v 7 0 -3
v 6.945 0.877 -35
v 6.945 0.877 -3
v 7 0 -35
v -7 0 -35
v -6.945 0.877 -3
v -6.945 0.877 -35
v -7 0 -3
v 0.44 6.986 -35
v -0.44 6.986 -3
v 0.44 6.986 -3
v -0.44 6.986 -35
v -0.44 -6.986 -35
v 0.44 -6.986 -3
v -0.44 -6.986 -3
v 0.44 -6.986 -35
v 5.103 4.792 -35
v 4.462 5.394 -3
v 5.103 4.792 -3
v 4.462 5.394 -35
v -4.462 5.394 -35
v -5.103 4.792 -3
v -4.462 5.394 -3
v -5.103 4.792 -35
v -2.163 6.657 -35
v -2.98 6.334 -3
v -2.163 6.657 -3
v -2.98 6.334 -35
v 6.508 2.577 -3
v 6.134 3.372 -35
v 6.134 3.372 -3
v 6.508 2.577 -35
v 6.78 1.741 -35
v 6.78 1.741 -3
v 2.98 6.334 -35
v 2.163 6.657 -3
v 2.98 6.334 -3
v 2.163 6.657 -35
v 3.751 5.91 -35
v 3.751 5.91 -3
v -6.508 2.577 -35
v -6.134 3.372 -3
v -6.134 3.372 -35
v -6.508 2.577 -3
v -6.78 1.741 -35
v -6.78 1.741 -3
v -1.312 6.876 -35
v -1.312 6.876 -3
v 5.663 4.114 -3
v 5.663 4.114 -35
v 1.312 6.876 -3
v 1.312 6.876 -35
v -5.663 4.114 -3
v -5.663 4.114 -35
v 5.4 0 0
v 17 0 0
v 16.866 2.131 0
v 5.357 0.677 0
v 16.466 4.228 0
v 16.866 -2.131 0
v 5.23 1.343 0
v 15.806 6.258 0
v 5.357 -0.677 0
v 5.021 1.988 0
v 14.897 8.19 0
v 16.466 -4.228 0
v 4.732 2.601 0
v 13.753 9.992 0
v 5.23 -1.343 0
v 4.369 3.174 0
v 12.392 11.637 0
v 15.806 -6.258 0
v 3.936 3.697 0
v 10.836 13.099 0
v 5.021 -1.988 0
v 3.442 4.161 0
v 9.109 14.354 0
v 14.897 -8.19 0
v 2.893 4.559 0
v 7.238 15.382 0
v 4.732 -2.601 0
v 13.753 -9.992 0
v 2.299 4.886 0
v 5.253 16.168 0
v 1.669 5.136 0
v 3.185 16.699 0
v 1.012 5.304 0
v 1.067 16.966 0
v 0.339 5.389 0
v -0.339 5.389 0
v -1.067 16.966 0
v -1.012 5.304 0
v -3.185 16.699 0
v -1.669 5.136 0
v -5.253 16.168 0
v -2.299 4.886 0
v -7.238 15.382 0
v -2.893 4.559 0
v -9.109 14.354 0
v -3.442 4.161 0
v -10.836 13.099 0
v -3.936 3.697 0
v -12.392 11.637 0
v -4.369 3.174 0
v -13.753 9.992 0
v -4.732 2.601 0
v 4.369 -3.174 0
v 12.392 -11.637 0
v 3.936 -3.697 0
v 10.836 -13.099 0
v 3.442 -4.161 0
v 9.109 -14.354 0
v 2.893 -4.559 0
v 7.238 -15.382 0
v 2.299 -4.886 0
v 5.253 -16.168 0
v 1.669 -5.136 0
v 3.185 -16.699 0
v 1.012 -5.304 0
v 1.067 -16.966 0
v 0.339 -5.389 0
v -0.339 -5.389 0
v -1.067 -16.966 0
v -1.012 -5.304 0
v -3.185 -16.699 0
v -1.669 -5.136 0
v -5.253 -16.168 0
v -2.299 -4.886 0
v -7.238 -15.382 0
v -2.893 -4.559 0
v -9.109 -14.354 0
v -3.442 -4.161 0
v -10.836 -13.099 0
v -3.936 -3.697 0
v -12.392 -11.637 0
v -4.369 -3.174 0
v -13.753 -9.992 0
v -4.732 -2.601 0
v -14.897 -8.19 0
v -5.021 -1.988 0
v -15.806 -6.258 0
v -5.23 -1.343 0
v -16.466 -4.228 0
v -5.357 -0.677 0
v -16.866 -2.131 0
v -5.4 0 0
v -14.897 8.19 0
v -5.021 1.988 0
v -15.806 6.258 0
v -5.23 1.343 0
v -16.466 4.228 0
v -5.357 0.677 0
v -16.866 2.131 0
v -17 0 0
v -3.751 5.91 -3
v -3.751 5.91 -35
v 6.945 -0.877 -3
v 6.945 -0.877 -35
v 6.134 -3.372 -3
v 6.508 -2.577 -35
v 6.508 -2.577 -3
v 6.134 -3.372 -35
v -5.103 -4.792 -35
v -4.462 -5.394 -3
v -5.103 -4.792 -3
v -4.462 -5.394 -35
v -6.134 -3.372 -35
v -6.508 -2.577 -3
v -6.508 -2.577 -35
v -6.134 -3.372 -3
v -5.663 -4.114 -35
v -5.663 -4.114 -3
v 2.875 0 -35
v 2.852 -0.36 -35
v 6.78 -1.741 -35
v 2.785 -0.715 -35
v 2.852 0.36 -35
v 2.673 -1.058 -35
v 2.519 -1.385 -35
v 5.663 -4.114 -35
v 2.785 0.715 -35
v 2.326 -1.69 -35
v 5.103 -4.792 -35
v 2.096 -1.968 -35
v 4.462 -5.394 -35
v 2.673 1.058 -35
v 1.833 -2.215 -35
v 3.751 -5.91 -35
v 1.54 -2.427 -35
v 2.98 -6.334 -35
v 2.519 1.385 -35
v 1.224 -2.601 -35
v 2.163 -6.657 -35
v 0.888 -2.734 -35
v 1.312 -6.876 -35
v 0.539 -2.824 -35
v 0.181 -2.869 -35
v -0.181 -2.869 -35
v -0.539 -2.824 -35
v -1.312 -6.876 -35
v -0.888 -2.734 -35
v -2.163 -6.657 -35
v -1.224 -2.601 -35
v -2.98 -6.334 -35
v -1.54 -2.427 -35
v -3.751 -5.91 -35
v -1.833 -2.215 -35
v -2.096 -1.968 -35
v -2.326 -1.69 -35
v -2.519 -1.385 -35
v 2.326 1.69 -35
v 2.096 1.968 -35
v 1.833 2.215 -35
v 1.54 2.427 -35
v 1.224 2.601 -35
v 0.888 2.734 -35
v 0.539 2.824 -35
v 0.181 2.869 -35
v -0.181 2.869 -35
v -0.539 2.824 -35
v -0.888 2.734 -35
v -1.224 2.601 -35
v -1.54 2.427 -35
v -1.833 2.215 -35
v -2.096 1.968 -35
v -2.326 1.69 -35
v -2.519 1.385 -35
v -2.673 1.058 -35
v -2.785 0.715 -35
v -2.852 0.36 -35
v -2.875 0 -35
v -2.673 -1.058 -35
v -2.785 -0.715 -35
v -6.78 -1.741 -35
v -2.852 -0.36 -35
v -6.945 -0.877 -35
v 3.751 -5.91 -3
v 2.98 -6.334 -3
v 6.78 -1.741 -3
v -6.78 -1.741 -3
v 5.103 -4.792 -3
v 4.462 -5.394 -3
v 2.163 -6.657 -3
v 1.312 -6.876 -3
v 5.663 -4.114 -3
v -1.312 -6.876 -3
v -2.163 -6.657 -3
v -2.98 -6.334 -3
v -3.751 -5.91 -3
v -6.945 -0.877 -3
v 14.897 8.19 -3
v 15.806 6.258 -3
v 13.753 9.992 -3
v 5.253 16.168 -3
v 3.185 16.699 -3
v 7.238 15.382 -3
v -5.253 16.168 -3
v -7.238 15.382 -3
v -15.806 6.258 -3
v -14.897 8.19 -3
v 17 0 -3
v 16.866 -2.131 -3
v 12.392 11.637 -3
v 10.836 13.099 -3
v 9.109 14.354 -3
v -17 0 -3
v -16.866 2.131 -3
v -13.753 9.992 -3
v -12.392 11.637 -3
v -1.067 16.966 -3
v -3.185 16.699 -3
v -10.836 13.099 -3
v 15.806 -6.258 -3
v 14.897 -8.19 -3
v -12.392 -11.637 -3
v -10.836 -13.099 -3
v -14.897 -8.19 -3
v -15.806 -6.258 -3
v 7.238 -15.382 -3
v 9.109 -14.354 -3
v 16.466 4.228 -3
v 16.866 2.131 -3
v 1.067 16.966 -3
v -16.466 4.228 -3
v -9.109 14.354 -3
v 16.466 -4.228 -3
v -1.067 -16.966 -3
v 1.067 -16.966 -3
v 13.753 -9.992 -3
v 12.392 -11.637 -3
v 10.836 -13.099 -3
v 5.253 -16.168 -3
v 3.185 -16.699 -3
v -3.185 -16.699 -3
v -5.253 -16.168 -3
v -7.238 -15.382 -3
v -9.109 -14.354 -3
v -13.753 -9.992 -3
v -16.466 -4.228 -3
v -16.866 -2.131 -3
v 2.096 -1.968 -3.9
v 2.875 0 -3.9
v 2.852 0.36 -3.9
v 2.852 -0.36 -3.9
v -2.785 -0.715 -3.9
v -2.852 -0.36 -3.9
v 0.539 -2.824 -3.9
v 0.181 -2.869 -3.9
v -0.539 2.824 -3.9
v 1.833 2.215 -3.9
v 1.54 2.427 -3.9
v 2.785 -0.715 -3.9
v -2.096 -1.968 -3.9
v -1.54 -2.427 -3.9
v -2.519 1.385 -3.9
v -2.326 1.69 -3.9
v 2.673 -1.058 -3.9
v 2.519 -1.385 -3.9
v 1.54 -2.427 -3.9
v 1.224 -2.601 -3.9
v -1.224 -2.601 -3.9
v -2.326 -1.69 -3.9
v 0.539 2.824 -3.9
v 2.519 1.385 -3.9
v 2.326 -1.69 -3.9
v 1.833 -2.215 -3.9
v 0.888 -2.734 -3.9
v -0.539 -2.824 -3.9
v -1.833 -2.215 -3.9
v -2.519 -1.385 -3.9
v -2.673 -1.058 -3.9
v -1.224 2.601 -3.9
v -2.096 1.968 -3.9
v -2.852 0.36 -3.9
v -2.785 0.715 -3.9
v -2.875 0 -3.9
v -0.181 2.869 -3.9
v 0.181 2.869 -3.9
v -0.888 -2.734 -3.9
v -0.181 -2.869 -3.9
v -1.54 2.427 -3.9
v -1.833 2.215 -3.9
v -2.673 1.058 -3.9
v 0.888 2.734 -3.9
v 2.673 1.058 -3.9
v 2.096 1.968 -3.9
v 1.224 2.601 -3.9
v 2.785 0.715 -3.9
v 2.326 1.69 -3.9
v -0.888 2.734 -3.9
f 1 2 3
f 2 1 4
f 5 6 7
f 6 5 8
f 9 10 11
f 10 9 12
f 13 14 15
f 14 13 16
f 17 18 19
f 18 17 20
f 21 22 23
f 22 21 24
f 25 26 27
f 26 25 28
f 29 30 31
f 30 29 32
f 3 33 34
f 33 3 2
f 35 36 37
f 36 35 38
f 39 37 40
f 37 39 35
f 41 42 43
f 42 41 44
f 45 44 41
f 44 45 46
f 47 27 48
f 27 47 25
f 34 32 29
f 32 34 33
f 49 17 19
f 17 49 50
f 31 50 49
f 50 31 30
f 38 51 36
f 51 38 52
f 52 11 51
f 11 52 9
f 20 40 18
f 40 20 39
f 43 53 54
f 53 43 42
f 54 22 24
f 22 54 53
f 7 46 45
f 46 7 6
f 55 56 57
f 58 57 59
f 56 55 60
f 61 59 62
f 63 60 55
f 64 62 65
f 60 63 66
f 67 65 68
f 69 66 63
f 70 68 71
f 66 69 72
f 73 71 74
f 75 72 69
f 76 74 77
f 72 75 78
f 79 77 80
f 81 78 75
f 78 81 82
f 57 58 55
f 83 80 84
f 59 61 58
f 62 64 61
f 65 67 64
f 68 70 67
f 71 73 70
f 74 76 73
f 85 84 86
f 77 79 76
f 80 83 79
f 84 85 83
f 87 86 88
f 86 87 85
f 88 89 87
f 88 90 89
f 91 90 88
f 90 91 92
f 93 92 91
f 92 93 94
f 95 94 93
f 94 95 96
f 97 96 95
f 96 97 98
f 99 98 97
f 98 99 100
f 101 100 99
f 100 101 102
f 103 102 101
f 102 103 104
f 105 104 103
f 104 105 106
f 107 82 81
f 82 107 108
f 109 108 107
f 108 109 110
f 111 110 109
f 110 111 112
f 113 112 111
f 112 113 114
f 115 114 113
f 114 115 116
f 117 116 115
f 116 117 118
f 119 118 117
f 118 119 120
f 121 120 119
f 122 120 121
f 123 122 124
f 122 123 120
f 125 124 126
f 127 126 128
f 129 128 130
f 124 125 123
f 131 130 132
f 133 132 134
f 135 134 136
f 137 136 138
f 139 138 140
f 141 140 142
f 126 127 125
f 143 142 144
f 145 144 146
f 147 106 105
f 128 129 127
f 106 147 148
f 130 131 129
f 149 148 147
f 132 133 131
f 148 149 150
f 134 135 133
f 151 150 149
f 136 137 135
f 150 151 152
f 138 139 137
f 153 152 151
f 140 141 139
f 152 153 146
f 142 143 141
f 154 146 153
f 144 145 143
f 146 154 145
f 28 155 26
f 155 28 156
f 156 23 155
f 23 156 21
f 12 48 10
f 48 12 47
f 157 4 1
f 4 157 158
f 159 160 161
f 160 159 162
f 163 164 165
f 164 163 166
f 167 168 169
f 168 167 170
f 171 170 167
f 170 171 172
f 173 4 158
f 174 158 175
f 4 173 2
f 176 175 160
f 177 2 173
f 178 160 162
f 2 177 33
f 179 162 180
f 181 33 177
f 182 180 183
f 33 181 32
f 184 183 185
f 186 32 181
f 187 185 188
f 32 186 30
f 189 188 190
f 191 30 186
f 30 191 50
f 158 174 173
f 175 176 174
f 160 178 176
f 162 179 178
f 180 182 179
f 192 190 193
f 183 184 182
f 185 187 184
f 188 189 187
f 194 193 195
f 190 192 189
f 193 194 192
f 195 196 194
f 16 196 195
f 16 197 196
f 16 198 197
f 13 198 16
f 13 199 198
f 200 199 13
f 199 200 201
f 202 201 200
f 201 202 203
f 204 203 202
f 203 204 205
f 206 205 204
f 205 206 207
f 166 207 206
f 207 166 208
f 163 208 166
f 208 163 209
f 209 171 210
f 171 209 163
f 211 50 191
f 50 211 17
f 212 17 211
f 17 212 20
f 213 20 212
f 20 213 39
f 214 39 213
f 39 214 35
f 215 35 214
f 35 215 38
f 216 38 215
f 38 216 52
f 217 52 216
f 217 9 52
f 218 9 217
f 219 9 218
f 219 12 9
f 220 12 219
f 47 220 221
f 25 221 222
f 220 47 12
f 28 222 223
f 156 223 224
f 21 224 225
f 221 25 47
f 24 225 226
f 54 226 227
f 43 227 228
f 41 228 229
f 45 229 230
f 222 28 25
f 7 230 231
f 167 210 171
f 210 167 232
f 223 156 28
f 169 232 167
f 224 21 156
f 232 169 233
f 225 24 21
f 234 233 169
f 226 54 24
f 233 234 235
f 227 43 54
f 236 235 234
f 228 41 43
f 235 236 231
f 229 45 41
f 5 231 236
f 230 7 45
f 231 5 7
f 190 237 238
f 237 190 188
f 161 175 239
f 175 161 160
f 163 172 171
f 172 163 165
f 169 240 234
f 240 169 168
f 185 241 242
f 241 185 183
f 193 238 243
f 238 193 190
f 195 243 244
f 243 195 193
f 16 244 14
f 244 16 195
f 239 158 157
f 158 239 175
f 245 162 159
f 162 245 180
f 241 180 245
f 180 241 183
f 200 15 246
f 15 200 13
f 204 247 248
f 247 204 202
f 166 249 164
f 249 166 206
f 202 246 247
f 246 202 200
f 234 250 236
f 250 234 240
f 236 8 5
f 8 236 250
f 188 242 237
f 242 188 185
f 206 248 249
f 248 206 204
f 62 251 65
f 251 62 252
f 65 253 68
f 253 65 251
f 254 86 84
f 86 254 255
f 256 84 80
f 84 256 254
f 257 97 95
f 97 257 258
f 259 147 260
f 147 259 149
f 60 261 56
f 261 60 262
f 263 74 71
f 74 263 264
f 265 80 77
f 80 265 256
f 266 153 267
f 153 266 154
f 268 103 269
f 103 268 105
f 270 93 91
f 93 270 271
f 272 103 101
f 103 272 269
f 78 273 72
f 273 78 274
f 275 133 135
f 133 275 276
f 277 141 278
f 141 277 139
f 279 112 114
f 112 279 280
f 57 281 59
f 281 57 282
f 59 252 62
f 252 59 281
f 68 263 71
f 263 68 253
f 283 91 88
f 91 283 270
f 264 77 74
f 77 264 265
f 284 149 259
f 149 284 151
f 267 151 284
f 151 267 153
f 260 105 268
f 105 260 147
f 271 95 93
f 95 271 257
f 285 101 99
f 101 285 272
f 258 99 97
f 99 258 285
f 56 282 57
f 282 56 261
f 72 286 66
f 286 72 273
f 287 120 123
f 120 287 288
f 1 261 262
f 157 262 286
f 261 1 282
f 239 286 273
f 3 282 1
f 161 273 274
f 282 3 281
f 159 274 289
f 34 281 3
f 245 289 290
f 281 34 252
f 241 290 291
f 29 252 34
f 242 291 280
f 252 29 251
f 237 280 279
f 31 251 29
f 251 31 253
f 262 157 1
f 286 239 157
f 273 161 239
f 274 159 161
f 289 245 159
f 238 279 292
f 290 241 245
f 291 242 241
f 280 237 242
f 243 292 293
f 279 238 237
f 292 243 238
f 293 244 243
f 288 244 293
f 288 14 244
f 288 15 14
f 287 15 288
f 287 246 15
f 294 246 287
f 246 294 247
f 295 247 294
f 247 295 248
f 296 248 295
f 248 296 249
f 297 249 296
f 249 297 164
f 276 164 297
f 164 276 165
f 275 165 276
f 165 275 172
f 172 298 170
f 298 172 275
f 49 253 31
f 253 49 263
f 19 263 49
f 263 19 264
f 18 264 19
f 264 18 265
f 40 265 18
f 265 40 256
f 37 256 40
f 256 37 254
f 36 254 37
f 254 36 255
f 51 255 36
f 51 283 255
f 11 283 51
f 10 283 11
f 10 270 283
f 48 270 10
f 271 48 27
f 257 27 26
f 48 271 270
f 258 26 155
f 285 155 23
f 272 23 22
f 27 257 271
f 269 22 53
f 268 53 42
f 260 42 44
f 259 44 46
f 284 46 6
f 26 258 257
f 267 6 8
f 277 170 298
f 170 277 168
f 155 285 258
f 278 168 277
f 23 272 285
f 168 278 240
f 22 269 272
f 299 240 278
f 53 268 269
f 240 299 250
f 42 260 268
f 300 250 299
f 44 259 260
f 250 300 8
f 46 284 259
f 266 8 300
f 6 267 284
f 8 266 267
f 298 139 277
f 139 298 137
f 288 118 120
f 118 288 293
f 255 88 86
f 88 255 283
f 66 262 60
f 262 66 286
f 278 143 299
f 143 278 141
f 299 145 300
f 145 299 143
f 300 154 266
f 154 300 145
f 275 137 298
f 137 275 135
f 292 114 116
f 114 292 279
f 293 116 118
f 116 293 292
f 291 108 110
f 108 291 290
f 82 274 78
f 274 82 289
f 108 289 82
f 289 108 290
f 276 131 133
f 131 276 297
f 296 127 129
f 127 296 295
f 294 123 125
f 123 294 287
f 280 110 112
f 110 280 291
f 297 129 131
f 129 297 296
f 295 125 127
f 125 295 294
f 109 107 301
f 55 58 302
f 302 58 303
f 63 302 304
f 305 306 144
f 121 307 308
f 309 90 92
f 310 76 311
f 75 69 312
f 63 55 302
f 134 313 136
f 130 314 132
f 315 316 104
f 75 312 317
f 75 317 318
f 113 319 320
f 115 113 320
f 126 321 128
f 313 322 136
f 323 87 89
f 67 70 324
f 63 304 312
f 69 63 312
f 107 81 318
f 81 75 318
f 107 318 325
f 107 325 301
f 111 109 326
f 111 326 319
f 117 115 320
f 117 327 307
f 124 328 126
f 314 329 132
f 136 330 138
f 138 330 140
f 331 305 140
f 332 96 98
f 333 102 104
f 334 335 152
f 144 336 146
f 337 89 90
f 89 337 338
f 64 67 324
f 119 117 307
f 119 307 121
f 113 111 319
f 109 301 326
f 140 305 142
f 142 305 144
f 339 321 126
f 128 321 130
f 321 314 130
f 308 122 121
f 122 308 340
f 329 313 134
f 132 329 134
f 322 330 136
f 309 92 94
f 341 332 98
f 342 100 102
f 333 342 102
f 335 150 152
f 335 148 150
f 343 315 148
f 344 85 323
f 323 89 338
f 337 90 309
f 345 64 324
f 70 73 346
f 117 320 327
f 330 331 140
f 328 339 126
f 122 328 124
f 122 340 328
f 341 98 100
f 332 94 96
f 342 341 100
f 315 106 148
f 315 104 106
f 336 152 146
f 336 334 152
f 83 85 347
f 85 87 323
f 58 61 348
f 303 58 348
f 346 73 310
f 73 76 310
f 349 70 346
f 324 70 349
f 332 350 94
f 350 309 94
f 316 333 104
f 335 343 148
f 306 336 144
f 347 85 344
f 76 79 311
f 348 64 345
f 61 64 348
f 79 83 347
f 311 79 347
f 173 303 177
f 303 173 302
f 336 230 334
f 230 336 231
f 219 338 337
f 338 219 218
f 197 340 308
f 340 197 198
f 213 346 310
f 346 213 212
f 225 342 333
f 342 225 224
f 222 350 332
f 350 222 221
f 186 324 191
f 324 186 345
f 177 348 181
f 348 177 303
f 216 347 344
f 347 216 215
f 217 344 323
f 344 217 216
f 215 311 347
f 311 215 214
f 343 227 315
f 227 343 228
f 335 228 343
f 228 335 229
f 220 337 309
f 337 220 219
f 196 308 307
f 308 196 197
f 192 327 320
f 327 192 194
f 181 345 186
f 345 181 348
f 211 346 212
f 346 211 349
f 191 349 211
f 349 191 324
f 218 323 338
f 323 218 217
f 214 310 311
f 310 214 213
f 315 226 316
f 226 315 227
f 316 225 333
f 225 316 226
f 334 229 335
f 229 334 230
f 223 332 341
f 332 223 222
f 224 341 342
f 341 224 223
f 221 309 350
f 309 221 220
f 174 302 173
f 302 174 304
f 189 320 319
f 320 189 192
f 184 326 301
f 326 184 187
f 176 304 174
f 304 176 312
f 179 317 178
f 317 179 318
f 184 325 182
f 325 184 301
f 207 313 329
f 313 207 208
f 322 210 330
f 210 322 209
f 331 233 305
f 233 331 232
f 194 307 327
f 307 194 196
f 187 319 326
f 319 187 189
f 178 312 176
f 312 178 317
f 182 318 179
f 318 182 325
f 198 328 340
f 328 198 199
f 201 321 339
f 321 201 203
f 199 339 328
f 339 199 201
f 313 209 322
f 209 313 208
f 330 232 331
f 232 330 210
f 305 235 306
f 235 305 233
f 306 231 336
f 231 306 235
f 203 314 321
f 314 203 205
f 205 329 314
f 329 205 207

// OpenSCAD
$fn = 50;


difference() {
	union() {
		translate(v = [0, 0, -35.0000000000]) {
			cylinder(h = 35, r = 7.0000000000);
		}
		translate(v = [0, 0, -3.0000000000]) {
			cylinder(h = 3, r = 17.0000000000);
		}
	}
	union() {
		translate(v = [0, 0, 0]) {
			rotate(a = [0, 0, 0]) {
				difference() {
					union() {
						#translate(v = [0, 0, -35.0000000000]) {
							cylinder(h = 35, r = 2.6000000000);
						}
						#translate(v = [0, 0, -3.9000000000]) {
							cylinder(h = 3.9000000000, r = 7.0000000000, r1 = 2.8750000000, r2 = 5.4000000000);
						}
						#translate(v = [0, 0, -35.0000000000]) {
							cylinder(h = 35, r = 2.8750000000);
						}
						#translate(v = [0, 0, -35.0000000000]) {
							cylinder(h = 35, r = 2.6000000000);
						}
					}
					union();
				}
			}
		}
	}
}
